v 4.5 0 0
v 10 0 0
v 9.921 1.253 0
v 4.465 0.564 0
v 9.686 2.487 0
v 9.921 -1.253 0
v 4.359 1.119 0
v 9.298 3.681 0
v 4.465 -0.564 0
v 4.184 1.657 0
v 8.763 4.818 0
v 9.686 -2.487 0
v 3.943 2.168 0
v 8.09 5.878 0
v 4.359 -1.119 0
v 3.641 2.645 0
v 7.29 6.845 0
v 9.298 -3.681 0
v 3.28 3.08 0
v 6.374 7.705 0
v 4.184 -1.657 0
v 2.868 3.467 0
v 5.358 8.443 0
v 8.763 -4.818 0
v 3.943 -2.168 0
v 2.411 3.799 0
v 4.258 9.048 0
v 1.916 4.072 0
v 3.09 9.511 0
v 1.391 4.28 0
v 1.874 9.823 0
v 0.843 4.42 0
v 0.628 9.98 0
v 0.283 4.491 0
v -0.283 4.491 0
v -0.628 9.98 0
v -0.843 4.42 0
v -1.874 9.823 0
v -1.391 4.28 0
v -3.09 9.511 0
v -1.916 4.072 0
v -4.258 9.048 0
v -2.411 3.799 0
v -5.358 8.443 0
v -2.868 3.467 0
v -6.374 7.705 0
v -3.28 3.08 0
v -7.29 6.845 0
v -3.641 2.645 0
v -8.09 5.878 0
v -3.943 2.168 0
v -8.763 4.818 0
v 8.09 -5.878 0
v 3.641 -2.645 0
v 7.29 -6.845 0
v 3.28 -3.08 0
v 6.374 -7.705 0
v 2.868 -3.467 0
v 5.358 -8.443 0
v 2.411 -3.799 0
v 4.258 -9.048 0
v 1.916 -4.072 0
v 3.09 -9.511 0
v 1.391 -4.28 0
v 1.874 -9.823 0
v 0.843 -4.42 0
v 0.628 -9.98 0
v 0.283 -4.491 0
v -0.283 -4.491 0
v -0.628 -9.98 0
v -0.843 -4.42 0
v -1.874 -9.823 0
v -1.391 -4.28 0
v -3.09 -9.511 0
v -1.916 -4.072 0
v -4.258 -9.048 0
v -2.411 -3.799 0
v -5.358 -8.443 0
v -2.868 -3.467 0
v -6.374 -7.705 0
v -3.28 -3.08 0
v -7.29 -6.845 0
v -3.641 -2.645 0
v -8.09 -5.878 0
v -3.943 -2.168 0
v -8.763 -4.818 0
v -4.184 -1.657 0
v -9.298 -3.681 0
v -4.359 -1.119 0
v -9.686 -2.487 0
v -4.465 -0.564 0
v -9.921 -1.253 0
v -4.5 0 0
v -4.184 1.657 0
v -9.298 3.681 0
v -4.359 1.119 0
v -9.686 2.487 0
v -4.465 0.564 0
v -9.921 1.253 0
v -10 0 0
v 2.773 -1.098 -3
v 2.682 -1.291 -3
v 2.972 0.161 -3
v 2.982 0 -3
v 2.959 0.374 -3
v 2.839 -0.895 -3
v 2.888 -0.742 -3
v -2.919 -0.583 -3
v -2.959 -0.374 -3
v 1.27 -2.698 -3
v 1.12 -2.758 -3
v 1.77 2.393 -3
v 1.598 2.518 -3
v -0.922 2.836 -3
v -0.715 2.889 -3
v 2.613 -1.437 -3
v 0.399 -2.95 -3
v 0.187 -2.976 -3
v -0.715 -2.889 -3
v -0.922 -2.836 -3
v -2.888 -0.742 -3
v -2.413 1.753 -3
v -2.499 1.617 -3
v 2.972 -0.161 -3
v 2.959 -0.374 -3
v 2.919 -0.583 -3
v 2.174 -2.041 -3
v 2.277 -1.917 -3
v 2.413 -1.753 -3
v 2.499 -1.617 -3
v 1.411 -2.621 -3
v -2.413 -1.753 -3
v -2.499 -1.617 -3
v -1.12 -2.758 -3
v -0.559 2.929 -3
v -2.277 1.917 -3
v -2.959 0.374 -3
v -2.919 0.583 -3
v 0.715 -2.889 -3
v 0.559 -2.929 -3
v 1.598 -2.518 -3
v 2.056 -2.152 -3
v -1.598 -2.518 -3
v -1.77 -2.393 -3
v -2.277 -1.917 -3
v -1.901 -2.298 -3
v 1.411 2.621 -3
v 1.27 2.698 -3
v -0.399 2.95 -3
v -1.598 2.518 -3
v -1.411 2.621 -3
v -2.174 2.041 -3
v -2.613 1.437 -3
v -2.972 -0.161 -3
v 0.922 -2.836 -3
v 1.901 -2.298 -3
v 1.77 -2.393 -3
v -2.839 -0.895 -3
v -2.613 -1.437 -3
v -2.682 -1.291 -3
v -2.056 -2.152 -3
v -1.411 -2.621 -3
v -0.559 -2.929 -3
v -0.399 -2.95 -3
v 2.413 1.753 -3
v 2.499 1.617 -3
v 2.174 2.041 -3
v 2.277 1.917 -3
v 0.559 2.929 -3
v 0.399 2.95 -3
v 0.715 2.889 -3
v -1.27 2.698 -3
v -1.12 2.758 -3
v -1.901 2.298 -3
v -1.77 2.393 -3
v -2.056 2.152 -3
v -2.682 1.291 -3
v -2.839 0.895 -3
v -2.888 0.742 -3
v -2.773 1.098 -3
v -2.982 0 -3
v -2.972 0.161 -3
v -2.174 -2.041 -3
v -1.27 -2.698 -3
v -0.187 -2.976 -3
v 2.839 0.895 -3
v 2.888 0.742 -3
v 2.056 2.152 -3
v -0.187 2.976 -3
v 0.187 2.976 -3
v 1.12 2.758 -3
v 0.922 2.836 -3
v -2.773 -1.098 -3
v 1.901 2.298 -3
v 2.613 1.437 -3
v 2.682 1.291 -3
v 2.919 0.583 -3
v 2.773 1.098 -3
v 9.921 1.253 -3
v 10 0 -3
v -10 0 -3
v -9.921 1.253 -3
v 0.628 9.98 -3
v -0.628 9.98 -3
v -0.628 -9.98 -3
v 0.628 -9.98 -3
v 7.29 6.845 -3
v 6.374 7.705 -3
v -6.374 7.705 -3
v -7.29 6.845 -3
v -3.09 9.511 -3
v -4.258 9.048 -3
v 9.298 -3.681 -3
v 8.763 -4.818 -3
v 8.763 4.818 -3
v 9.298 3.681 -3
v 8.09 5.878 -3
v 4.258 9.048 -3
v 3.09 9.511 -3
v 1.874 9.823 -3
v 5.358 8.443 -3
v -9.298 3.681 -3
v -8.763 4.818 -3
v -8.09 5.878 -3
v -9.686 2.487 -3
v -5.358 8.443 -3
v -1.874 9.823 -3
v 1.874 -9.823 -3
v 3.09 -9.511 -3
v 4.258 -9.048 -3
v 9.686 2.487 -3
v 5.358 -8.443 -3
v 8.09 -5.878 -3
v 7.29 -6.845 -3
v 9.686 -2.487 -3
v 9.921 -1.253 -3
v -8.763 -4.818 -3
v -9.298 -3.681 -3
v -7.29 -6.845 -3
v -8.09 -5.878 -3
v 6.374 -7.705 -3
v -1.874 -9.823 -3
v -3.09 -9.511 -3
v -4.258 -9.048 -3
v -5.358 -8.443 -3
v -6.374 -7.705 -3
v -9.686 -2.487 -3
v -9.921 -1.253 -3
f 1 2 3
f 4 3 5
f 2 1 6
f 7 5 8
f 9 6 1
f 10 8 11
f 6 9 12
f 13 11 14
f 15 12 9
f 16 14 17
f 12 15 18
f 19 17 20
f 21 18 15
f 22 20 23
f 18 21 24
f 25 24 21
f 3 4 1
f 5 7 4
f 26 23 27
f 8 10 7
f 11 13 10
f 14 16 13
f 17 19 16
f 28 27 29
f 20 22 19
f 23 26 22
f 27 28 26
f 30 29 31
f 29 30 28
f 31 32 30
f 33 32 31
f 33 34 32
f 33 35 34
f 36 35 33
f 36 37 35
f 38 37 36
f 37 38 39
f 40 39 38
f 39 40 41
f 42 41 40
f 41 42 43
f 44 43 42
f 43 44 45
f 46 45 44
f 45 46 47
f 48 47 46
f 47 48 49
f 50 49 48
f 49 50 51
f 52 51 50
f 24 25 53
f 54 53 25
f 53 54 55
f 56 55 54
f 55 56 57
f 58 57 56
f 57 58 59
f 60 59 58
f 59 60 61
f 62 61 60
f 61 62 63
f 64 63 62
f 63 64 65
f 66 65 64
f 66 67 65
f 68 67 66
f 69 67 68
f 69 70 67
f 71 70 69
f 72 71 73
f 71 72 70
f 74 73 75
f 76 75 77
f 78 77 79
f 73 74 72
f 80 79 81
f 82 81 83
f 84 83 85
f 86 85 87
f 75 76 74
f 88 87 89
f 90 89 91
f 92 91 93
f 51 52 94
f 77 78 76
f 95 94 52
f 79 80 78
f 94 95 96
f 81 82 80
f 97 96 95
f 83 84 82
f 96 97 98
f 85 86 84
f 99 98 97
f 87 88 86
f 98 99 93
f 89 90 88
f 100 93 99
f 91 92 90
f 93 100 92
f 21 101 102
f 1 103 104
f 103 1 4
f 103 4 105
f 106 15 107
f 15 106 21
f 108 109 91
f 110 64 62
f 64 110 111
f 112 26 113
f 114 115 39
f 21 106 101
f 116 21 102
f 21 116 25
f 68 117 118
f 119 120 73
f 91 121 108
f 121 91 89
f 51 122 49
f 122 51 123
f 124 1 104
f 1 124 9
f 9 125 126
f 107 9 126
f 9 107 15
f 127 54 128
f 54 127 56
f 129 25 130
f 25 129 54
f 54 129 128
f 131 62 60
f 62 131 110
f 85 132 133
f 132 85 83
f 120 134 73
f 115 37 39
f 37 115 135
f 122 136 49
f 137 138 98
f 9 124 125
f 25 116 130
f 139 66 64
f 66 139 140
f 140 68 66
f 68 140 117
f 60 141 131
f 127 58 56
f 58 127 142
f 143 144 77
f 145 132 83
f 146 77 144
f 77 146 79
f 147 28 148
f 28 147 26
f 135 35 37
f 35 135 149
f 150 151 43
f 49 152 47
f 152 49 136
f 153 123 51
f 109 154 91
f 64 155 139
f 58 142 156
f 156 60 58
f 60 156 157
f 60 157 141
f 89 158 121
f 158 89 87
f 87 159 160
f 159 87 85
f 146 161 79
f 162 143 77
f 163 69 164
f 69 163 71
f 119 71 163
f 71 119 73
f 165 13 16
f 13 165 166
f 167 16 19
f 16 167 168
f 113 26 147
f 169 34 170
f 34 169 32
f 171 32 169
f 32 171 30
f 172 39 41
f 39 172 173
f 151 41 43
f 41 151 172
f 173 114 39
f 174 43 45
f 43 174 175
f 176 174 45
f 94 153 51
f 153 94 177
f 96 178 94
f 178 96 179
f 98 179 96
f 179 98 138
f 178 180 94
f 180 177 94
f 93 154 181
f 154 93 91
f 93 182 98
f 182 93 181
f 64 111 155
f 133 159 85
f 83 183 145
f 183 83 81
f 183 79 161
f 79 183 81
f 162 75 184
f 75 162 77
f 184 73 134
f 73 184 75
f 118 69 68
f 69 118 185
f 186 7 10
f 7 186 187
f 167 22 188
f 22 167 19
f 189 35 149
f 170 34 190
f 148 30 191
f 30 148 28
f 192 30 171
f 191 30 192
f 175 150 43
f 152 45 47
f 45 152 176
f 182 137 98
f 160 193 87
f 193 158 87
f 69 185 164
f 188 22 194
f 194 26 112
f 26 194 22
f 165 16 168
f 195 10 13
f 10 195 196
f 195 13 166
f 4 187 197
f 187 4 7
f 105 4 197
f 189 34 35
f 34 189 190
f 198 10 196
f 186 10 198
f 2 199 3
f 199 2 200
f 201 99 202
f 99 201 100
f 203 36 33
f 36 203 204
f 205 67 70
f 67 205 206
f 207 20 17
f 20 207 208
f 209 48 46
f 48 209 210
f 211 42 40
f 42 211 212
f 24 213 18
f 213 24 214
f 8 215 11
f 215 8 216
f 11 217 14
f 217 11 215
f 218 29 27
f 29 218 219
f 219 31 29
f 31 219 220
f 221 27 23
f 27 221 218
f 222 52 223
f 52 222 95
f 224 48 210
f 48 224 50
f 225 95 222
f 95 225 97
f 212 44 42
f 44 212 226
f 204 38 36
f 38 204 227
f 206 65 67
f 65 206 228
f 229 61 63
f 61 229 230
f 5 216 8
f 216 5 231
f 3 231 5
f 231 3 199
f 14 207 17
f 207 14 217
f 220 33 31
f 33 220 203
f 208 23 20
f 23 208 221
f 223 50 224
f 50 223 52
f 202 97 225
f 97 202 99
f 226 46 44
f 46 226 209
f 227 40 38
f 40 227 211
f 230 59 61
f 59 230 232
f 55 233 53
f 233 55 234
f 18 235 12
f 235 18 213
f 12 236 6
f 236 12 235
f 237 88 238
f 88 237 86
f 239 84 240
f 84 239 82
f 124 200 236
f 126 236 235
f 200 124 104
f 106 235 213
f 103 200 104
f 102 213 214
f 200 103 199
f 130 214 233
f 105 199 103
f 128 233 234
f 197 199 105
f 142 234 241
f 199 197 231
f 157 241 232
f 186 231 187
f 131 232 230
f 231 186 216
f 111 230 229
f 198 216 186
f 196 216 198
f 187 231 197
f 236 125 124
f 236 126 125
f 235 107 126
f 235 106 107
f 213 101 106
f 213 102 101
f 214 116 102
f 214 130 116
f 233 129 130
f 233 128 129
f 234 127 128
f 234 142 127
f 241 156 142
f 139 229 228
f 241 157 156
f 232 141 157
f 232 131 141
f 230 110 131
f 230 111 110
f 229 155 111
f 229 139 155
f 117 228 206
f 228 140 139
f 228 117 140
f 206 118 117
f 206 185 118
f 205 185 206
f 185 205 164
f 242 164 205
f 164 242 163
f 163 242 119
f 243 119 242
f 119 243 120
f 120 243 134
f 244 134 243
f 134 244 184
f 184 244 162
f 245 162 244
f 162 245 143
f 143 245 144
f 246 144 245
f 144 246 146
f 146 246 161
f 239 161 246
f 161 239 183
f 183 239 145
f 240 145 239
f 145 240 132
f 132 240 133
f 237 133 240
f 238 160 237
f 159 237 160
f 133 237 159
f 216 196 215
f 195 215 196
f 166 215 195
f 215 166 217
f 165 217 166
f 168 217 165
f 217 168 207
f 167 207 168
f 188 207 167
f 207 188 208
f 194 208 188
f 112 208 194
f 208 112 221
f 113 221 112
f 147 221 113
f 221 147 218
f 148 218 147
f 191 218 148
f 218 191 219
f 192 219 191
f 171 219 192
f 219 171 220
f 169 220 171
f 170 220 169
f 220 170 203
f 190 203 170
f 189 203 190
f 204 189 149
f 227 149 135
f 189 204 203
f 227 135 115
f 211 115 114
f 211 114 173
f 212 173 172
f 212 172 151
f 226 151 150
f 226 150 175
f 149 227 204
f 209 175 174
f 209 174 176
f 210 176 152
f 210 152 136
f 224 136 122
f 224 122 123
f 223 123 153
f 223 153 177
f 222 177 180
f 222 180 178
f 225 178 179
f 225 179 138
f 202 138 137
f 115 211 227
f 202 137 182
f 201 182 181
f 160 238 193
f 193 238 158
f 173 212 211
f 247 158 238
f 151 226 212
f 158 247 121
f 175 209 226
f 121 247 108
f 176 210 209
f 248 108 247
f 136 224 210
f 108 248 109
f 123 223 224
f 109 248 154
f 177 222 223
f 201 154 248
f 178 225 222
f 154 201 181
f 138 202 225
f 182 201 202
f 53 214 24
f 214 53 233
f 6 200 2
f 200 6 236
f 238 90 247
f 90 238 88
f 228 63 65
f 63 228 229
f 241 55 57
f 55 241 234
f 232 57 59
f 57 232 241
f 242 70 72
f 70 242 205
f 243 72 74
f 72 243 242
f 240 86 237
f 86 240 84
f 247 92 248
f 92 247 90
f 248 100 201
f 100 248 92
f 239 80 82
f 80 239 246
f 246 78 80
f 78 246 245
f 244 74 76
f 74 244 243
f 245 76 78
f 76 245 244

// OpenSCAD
$fn = 50;


difference() {
	union() {
		translate(v = [0, 0, -3.0000000000]) {
			cylinder(h = 3, r = 10.0000000000);
		}
	}
	union() {
		translate(v = [0, 0, 0]) {
			rotate(a = [0, 0, 0]) {
				difference() {
					union() {
						#translate(v = [0, 0, -3.0000000000]) {
							cylinder(h = 3, r = 2.2500000000);
						}
						#translate(v = [0, 0, -4.2000000000]) {
							cylinder(h = 4.2000000000, r1 = 2.3750000000, r2 = 4.5000000000);
						}
						#translate(v = [0, 0, -3.0000000000]) {
							cylinder(h = 3, r = 2.3750000000);
						}
						#translate(v = [0, 0, -3.0000000000]) {
							cylinder(h = 3, r = 2.2500000000);
						}
					}
					union();
				}
			}
		}
	}
}
